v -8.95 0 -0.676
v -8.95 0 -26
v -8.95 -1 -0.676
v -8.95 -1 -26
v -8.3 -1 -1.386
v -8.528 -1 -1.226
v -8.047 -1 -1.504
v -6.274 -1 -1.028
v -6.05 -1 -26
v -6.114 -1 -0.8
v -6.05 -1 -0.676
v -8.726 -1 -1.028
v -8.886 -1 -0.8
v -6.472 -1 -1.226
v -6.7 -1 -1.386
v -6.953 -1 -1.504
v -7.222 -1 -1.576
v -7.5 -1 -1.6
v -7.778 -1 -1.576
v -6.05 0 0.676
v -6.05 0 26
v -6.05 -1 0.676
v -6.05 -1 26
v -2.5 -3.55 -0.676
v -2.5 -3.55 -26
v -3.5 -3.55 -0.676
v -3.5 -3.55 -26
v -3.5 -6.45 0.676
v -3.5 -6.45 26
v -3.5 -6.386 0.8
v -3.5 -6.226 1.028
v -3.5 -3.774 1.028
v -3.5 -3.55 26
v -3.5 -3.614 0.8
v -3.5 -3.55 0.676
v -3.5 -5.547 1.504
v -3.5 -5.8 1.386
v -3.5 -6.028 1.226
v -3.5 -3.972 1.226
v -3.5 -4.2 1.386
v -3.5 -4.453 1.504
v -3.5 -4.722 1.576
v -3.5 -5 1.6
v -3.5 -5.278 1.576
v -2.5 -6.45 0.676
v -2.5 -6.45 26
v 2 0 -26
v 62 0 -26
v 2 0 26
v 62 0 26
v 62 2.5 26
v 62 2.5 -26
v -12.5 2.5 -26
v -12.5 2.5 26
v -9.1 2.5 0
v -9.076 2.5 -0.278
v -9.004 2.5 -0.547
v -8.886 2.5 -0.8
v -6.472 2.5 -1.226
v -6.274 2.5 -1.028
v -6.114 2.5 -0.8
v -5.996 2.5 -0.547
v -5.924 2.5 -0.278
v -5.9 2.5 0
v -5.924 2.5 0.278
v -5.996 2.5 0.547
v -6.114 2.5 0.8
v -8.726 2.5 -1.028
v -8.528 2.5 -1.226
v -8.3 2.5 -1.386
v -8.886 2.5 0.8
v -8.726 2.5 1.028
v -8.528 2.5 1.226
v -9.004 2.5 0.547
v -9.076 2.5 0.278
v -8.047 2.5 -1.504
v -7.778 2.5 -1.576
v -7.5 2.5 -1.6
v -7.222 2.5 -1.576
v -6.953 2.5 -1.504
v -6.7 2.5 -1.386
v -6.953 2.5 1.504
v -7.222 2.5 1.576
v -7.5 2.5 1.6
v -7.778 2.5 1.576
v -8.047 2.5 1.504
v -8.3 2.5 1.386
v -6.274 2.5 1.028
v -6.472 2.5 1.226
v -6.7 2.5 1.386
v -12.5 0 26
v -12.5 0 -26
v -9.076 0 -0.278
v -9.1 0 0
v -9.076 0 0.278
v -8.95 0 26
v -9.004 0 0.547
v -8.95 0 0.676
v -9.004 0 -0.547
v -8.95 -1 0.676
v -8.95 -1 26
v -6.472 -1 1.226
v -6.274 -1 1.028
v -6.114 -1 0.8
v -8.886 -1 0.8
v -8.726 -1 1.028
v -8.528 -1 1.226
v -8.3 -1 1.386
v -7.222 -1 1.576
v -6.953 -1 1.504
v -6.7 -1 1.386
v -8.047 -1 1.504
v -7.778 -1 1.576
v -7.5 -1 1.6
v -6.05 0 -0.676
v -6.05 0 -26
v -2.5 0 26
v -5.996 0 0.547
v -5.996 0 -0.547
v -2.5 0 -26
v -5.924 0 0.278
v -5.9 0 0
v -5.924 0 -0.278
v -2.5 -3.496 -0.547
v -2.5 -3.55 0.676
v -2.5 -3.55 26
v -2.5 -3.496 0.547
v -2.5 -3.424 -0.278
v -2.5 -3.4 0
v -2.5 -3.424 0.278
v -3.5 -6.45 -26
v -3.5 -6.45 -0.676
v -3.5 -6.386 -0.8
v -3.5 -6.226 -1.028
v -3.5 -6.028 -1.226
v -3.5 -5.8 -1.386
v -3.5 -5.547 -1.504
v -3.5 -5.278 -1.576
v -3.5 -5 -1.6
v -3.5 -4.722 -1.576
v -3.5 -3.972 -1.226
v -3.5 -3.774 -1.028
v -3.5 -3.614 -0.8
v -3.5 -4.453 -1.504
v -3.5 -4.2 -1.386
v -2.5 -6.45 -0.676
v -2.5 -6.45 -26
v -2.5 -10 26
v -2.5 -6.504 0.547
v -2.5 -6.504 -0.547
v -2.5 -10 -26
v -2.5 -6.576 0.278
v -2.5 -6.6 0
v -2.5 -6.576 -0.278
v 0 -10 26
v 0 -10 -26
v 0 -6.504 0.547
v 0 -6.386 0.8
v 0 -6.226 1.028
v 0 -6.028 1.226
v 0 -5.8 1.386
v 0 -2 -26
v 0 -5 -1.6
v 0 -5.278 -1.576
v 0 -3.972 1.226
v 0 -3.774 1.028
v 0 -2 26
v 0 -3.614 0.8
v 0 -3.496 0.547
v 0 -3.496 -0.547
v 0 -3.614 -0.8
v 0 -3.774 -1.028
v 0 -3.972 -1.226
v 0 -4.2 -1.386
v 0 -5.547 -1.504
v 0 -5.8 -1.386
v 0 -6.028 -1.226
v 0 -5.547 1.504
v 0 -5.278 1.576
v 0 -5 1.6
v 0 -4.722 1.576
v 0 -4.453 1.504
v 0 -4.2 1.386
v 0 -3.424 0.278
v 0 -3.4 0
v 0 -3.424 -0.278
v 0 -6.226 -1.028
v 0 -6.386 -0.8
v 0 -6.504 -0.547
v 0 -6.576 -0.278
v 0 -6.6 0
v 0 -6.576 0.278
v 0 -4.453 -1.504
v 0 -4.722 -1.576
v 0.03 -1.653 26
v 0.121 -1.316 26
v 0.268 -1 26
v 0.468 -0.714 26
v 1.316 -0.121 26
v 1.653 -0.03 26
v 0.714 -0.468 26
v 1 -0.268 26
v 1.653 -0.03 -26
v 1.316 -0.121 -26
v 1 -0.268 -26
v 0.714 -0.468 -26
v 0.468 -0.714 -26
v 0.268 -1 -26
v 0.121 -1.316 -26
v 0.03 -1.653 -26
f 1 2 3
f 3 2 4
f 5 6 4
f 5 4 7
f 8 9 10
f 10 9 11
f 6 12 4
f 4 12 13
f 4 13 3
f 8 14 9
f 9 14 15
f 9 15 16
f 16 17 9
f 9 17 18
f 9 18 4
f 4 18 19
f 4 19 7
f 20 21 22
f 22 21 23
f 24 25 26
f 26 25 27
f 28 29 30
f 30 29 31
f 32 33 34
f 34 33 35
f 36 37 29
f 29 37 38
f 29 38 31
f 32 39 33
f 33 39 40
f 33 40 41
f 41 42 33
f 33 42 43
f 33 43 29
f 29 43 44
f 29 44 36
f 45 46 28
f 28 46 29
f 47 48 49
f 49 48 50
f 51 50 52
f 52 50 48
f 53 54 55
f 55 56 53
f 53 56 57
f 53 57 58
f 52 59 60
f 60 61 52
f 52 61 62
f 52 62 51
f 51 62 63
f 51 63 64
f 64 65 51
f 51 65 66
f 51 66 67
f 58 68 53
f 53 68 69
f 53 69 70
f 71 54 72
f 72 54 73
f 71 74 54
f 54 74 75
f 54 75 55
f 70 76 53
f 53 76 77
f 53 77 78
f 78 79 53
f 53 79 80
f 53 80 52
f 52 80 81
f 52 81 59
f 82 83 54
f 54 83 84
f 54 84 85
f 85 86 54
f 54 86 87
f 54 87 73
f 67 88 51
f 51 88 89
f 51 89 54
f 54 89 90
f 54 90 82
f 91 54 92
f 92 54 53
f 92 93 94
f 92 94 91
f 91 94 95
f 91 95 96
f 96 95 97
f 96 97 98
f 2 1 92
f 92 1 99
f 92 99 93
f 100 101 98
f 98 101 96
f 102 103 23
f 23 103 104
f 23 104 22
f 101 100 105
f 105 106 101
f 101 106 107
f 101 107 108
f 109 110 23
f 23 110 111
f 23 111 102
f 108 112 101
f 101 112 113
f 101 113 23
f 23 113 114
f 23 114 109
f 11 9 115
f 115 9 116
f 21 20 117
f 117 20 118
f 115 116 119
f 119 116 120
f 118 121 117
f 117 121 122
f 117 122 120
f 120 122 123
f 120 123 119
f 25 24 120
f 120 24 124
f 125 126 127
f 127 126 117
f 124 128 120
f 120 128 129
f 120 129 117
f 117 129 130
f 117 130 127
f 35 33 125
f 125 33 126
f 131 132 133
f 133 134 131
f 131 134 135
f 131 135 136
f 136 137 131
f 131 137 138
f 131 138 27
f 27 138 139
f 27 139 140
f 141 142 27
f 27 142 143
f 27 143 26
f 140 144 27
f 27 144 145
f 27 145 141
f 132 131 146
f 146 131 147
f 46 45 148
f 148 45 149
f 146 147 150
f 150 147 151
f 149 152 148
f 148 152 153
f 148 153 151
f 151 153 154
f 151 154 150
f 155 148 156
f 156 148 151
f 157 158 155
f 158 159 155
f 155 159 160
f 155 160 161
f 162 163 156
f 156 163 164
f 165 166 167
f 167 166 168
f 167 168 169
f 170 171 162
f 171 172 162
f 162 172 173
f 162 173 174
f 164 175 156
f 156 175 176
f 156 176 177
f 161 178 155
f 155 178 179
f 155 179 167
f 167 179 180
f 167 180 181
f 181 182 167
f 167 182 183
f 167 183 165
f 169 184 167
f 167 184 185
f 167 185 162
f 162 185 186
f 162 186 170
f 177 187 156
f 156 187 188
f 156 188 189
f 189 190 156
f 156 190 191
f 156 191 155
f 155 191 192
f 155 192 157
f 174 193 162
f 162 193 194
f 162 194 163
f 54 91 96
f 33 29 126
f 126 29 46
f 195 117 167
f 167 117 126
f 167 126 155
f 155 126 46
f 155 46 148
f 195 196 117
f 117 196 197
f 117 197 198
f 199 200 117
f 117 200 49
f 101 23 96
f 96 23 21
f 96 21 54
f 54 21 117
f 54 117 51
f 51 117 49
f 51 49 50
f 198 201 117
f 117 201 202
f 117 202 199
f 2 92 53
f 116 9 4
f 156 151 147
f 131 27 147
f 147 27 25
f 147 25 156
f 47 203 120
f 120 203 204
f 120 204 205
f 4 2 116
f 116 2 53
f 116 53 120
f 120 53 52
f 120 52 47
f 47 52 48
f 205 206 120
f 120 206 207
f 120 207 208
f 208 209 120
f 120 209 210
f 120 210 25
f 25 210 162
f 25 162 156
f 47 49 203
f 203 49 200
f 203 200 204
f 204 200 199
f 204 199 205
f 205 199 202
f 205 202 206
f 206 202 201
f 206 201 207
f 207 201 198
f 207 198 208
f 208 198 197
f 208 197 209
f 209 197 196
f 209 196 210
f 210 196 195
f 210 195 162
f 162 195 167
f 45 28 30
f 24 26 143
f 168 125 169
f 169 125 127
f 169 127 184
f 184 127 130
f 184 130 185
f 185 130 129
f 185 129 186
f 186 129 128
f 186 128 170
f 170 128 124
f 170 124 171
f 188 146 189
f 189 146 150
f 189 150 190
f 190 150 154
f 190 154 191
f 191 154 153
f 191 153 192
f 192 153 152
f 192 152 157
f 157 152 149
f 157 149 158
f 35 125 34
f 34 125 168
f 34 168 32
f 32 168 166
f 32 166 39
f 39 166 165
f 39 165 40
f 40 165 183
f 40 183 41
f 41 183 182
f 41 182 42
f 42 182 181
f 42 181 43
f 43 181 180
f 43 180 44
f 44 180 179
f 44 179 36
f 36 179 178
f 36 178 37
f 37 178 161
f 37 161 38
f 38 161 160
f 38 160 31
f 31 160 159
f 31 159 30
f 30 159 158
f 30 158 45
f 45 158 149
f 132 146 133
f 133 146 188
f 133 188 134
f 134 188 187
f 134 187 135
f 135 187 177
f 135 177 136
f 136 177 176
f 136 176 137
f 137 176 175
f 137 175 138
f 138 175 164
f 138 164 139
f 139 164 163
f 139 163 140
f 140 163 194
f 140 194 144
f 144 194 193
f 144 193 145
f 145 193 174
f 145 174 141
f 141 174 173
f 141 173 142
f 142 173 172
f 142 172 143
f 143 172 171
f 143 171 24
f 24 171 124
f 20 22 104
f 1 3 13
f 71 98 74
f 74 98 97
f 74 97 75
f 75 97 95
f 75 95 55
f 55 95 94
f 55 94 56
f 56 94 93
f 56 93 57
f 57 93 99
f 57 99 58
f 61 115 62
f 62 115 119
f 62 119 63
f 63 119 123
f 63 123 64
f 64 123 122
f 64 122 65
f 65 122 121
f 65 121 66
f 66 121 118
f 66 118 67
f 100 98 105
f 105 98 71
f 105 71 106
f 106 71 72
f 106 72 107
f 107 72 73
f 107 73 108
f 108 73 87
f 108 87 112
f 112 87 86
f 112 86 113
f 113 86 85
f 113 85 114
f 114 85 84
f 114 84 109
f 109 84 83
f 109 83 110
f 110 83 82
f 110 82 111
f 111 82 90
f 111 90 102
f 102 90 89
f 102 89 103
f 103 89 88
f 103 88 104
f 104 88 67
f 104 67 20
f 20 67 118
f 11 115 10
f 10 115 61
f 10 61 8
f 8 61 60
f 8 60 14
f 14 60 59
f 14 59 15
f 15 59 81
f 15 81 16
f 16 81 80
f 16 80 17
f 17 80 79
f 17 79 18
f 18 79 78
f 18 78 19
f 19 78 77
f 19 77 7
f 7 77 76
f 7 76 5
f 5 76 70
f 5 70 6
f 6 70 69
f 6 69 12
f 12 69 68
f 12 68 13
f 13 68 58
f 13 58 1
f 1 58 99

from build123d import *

# Parameters (mm, degrees)
BOSS_EXTRUDE1_DEPTH = 26
FILLET1_R           = 2
SKETCH2_R           = 1.6
CUT_EXTRUDE1_DEPTH  = 13.5
SKETCH3_R           = 1.6
CUT_EXTRUDE2_DEPTH  = 13.5


with BuildPart() as part:
    # Sketch1 → Boss-Extrude1 (new body, symmetric)
    with BuildSketch(Plane.XY):
        Polygon((62, 0), (62, 2.5), (-12.5, 2.5), (-12.5, 0), (-8.95, 0), (-8.95, -1), (-6.05, -1), (-6.05, 0), (-2.5, 0), (-2.5, -3.55), (-3.5, -3.55), (-3.5, -6.45), (-2.5, -6.45), (-2.5, -10), (0, -10), (0, 0), align=None)
    extrude(amount=BOSS_EXTRUDE1_DEPTH, both=True)

    # Fillet1
    fillet1_edges = [part.edges().sort_by_distance(p)[0] for p in [
        (0, 0, 0),
    ]]
    fillet(fillet1_edges, radius=FILLET1_R)

    # Sketch2 → Cut-Extrude1 (cut, through all)
    with BuildSketch(Plane(origin=(0, 0, 0), x_dir=(0, 0, -1), z_dir=(1, 0, 0))):
        with Locations((0, -5)):
            Circle(SKETCH2_R)
    extrude(amount=-CUT_EXTRUDE1_DEPTH, mode=Mode.SUBTRACT)

    # Sketch3 → Cut-Extrude2 (cut, through all)
    with BuildSketch(Plane(origin=(0, 2.5, 0), x_dir=(1, 0, 0), z_dir=(0, 1, 0))):
        with Locations((-7.5, 0)):
            Circle(SKETCH3_R)
    extrude(amount=-CUT_EXTRUDE2_DEPTH, mode=Mode.SUBTRACT)


solid = part.part
